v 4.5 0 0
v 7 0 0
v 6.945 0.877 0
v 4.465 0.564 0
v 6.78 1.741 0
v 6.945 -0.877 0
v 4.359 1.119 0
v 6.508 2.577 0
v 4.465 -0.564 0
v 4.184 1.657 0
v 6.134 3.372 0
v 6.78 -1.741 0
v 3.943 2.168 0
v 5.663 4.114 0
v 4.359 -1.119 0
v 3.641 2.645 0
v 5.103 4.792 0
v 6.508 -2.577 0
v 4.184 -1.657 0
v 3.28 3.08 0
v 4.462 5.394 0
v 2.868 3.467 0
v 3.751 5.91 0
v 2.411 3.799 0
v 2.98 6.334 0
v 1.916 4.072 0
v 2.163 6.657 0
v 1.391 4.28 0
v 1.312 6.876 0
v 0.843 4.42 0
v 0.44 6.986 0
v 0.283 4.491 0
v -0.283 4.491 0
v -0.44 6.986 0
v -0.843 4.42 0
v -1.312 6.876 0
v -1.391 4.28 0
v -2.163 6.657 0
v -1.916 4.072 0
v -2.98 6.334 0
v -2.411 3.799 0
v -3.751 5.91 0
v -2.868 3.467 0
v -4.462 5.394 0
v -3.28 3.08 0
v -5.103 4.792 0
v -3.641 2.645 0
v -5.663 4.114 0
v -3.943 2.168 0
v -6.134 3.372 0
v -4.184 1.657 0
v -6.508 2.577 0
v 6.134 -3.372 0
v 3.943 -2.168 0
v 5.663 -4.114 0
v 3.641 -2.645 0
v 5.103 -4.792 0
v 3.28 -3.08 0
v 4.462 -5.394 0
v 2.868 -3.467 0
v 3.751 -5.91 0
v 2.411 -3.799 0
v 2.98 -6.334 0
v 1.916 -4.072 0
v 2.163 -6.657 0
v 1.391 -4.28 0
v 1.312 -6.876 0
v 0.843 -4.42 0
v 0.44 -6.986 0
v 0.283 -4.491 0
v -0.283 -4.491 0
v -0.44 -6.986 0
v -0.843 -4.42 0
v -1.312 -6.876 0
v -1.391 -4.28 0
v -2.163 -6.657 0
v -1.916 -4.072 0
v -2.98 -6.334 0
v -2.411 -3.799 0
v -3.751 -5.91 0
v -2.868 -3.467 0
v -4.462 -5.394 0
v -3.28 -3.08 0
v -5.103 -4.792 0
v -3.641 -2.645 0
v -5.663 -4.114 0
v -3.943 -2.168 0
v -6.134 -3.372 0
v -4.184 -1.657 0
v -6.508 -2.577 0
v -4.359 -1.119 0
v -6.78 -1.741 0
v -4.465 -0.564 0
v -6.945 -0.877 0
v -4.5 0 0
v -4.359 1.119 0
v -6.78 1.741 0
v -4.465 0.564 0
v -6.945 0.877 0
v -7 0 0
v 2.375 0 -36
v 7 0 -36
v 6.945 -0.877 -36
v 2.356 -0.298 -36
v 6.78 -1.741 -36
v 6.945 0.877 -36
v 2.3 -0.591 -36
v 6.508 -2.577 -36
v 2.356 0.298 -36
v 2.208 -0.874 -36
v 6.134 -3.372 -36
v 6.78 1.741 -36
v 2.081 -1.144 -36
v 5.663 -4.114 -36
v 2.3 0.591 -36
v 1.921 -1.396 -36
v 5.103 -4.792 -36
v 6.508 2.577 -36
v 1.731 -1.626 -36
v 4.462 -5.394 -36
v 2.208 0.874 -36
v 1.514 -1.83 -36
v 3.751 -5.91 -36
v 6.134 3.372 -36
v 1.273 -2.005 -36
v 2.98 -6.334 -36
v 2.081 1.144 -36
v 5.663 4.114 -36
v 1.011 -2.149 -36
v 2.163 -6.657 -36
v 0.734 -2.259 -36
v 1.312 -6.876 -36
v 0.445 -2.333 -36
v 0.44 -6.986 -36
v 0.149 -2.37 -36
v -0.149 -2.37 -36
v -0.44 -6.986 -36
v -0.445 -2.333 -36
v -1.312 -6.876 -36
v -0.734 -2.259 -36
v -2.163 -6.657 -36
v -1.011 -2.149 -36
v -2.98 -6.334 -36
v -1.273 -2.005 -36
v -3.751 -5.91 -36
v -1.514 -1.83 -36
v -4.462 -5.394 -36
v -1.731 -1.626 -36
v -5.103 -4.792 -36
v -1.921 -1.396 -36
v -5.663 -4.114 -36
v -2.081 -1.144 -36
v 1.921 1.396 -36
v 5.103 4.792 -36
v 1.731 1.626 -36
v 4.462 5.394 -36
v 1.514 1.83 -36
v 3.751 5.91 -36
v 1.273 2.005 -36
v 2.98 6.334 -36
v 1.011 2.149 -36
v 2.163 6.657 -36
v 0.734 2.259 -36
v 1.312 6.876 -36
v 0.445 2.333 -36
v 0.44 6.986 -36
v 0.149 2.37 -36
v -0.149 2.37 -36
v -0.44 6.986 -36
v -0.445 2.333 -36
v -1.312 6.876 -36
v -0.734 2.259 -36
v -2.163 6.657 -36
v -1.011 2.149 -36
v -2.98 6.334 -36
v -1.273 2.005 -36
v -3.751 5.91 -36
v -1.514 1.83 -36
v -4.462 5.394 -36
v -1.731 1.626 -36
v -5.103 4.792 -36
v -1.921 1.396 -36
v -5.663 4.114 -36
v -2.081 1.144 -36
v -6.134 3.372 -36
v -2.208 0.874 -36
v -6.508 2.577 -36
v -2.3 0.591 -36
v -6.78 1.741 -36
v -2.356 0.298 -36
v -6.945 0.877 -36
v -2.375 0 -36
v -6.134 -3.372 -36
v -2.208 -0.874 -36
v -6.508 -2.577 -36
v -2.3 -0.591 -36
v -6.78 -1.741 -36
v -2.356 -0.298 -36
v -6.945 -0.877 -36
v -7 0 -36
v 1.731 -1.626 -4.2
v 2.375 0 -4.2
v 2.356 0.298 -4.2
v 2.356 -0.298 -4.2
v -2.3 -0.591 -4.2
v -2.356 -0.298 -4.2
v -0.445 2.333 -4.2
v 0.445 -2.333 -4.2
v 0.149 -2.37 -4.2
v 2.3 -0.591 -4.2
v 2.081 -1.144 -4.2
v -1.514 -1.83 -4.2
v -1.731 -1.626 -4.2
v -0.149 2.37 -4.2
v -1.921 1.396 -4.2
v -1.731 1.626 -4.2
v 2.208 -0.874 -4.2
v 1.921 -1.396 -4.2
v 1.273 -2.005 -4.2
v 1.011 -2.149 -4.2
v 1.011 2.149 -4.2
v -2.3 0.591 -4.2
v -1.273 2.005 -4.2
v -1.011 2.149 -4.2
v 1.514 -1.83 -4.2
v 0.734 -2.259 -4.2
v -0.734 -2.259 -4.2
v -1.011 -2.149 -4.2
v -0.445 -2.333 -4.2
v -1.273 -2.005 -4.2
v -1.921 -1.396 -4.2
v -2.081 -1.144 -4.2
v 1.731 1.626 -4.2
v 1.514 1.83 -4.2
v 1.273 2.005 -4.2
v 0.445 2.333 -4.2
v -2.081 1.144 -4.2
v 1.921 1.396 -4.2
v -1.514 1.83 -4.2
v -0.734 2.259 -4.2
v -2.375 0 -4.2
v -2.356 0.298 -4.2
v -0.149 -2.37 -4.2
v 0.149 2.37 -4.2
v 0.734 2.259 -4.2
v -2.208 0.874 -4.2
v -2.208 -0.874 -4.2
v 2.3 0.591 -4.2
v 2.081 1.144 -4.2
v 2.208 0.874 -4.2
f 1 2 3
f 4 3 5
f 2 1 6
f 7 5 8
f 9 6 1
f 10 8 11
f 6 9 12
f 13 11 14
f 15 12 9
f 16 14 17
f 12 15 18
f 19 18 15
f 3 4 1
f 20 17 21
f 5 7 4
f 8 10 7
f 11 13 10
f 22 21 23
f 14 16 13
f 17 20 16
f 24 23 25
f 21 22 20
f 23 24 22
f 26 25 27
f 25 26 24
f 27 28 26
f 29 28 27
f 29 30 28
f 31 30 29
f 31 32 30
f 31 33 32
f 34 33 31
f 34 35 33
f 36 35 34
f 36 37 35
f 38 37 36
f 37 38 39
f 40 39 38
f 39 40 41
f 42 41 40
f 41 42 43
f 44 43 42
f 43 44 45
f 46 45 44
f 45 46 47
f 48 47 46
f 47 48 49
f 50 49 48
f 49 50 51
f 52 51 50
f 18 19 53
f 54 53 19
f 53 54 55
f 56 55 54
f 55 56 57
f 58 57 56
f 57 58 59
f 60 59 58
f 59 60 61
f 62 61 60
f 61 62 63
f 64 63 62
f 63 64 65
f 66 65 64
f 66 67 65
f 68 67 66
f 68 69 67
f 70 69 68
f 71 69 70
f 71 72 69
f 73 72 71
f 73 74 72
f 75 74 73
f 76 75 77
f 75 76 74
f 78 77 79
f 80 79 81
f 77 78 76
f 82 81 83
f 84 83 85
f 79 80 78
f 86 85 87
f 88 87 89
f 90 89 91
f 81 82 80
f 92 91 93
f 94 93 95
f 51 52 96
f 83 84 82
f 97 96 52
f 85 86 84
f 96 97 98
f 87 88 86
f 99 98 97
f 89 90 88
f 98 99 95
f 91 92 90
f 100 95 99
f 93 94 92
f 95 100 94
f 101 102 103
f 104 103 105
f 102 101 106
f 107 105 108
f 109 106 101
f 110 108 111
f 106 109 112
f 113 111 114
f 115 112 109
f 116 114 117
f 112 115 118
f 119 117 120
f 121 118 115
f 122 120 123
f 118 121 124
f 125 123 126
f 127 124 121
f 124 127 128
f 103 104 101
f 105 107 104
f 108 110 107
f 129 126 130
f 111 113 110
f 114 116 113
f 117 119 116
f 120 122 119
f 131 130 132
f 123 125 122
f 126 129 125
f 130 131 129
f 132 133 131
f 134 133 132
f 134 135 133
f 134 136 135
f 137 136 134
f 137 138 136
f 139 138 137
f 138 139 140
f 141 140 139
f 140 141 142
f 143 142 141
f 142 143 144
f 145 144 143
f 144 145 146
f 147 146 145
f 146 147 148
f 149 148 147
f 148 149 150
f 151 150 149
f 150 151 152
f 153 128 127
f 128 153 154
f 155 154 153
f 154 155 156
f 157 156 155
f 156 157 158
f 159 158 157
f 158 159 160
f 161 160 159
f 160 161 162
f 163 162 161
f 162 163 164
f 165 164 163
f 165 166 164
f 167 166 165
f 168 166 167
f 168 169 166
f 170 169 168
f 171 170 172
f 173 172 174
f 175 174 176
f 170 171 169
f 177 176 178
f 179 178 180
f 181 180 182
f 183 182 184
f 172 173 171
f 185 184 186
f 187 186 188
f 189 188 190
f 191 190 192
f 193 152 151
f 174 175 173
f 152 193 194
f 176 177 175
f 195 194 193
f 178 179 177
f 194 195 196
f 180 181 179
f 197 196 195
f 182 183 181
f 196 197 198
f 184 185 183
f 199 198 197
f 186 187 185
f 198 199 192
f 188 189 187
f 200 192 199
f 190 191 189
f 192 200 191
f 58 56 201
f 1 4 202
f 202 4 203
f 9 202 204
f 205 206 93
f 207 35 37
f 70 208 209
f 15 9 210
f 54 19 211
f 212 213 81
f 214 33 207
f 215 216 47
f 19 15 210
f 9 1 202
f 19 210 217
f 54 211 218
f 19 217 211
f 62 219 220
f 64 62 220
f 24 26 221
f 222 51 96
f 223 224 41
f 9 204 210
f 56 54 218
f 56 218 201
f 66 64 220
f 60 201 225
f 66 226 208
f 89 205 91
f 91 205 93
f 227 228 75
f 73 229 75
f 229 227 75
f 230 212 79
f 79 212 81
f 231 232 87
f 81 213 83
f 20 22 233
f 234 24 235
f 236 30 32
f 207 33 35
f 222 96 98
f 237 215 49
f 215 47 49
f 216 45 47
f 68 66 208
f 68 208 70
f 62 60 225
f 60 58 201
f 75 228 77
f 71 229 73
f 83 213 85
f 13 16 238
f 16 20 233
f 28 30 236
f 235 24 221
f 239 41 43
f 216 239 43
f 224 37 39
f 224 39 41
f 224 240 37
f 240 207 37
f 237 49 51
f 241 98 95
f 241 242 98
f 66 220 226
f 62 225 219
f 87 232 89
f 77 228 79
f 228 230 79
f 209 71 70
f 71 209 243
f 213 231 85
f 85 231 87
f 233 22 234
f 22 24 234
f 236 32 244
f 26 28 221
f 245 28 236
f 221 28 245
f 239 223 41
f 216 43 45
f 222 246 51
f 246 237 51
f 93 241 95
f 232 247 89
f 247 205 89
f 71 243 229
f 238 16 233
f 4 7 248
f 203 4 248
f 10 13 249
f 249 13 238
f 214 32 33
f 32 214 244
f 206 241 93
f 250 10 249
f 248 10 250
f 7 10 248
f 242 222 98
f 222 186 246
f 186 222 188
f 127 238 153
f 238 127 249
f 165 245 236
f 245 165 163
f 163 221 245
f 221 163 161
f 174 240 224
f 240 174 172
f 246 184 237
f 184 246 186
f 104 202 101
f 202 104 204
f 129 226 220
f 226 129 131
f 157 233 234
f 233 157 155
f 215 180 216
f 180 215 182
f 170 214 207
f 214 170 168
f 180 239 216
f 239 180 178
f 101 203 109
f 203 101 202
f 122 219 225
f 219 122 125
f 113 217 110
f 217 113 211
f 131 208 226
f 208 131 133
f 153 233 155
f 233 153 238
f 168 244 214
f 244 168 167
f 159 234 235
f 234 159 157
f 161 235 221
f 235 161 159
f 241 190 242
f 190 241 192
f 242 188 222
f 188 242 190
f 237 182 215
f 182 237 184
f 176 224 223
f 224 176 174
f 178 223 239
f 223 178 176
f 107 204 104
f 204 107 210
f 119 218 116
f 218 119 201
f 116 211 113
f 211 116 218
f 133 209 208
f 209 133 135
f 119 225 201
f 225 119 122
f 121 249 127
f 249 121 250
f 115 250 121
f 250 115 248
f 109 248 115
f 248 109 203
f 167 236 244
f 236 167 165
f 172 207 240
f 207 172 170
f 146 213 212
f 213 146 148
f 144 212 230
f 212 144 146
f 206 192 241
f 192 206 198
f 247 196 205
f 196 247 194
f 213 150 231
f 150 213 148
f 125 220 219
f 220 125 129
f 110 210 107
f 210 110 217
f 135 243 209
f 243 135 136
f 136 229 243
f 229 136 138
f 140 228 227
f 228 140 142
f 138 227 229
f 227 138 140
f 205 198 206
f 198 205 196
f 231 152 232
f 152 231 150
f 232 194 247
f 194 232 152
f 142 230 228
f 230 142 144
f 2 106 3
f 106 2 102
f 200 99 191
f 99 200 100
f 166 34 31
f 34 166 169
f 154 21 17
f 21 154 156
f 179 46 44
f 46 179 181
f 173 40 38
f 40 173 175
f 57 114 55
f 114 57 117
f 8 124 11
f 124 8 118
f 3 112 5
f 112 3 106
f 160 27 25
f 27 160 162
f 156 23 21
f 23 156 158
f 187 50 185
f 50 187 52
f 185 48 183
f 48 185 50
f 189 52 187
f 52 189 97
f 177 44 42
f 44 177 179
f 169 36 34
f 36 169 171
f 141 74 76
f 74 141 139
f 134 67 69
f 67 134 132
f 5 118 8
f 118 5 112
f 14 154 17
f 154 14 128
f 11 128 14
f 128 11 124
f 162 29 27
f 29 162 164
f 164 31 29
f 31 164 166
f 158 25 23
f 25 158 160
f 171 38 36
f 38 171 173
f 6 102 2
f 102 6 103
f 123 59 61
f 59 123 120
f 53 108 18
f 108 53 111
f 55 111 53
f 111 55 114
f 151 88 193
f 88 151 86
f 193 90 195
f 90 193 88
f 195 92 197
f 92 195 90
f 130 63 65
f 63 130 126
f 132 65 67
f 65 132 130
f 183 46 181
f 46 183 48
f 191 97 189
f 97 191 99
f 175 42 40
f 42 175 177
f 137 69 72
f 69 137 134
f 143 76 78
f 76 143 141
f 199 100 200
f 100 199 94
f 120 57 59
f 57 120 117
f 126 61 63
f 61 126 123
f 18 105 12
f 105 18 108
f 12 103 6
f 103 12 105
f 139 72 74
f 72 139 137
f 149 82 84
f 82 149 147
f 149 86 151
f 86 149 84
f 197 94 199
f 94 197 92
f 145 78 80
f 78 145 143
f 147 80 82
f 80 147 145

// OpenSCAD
$fn = 50;


difference() {
	union() {
		translate(v = [0, 0, -36.0000000000]) {
			cylinder(h = 36, r = 7.0000000000);
		}
	}
	union() {
		translate(v = [0, 0, 0]) {
			rotate(a = [0, 0, 0]) {
				difference() {
					union() {
						#translate(v = [0, 0, -36.0000000000]) {
							cylinder(h = 36, r = 2.2500000000);
						}
						#translate(v = [0, 0, -4.2000000000]) {
							cylinder(h = 4.2000000000, r1 = 2.3750000000, r2 = 4.5000000000);
						}
						#translate(v = [0, 0, -36.0000000000]) {
							cylinder(h = 36, r = 2.3750000000);
						}
						#translate(v = [0, 0, -36.0000000000]) {
							cylinder(h = 36, r = 2.2500000000);
						}
					}
					union();
				}
			}
		}
	}
}
